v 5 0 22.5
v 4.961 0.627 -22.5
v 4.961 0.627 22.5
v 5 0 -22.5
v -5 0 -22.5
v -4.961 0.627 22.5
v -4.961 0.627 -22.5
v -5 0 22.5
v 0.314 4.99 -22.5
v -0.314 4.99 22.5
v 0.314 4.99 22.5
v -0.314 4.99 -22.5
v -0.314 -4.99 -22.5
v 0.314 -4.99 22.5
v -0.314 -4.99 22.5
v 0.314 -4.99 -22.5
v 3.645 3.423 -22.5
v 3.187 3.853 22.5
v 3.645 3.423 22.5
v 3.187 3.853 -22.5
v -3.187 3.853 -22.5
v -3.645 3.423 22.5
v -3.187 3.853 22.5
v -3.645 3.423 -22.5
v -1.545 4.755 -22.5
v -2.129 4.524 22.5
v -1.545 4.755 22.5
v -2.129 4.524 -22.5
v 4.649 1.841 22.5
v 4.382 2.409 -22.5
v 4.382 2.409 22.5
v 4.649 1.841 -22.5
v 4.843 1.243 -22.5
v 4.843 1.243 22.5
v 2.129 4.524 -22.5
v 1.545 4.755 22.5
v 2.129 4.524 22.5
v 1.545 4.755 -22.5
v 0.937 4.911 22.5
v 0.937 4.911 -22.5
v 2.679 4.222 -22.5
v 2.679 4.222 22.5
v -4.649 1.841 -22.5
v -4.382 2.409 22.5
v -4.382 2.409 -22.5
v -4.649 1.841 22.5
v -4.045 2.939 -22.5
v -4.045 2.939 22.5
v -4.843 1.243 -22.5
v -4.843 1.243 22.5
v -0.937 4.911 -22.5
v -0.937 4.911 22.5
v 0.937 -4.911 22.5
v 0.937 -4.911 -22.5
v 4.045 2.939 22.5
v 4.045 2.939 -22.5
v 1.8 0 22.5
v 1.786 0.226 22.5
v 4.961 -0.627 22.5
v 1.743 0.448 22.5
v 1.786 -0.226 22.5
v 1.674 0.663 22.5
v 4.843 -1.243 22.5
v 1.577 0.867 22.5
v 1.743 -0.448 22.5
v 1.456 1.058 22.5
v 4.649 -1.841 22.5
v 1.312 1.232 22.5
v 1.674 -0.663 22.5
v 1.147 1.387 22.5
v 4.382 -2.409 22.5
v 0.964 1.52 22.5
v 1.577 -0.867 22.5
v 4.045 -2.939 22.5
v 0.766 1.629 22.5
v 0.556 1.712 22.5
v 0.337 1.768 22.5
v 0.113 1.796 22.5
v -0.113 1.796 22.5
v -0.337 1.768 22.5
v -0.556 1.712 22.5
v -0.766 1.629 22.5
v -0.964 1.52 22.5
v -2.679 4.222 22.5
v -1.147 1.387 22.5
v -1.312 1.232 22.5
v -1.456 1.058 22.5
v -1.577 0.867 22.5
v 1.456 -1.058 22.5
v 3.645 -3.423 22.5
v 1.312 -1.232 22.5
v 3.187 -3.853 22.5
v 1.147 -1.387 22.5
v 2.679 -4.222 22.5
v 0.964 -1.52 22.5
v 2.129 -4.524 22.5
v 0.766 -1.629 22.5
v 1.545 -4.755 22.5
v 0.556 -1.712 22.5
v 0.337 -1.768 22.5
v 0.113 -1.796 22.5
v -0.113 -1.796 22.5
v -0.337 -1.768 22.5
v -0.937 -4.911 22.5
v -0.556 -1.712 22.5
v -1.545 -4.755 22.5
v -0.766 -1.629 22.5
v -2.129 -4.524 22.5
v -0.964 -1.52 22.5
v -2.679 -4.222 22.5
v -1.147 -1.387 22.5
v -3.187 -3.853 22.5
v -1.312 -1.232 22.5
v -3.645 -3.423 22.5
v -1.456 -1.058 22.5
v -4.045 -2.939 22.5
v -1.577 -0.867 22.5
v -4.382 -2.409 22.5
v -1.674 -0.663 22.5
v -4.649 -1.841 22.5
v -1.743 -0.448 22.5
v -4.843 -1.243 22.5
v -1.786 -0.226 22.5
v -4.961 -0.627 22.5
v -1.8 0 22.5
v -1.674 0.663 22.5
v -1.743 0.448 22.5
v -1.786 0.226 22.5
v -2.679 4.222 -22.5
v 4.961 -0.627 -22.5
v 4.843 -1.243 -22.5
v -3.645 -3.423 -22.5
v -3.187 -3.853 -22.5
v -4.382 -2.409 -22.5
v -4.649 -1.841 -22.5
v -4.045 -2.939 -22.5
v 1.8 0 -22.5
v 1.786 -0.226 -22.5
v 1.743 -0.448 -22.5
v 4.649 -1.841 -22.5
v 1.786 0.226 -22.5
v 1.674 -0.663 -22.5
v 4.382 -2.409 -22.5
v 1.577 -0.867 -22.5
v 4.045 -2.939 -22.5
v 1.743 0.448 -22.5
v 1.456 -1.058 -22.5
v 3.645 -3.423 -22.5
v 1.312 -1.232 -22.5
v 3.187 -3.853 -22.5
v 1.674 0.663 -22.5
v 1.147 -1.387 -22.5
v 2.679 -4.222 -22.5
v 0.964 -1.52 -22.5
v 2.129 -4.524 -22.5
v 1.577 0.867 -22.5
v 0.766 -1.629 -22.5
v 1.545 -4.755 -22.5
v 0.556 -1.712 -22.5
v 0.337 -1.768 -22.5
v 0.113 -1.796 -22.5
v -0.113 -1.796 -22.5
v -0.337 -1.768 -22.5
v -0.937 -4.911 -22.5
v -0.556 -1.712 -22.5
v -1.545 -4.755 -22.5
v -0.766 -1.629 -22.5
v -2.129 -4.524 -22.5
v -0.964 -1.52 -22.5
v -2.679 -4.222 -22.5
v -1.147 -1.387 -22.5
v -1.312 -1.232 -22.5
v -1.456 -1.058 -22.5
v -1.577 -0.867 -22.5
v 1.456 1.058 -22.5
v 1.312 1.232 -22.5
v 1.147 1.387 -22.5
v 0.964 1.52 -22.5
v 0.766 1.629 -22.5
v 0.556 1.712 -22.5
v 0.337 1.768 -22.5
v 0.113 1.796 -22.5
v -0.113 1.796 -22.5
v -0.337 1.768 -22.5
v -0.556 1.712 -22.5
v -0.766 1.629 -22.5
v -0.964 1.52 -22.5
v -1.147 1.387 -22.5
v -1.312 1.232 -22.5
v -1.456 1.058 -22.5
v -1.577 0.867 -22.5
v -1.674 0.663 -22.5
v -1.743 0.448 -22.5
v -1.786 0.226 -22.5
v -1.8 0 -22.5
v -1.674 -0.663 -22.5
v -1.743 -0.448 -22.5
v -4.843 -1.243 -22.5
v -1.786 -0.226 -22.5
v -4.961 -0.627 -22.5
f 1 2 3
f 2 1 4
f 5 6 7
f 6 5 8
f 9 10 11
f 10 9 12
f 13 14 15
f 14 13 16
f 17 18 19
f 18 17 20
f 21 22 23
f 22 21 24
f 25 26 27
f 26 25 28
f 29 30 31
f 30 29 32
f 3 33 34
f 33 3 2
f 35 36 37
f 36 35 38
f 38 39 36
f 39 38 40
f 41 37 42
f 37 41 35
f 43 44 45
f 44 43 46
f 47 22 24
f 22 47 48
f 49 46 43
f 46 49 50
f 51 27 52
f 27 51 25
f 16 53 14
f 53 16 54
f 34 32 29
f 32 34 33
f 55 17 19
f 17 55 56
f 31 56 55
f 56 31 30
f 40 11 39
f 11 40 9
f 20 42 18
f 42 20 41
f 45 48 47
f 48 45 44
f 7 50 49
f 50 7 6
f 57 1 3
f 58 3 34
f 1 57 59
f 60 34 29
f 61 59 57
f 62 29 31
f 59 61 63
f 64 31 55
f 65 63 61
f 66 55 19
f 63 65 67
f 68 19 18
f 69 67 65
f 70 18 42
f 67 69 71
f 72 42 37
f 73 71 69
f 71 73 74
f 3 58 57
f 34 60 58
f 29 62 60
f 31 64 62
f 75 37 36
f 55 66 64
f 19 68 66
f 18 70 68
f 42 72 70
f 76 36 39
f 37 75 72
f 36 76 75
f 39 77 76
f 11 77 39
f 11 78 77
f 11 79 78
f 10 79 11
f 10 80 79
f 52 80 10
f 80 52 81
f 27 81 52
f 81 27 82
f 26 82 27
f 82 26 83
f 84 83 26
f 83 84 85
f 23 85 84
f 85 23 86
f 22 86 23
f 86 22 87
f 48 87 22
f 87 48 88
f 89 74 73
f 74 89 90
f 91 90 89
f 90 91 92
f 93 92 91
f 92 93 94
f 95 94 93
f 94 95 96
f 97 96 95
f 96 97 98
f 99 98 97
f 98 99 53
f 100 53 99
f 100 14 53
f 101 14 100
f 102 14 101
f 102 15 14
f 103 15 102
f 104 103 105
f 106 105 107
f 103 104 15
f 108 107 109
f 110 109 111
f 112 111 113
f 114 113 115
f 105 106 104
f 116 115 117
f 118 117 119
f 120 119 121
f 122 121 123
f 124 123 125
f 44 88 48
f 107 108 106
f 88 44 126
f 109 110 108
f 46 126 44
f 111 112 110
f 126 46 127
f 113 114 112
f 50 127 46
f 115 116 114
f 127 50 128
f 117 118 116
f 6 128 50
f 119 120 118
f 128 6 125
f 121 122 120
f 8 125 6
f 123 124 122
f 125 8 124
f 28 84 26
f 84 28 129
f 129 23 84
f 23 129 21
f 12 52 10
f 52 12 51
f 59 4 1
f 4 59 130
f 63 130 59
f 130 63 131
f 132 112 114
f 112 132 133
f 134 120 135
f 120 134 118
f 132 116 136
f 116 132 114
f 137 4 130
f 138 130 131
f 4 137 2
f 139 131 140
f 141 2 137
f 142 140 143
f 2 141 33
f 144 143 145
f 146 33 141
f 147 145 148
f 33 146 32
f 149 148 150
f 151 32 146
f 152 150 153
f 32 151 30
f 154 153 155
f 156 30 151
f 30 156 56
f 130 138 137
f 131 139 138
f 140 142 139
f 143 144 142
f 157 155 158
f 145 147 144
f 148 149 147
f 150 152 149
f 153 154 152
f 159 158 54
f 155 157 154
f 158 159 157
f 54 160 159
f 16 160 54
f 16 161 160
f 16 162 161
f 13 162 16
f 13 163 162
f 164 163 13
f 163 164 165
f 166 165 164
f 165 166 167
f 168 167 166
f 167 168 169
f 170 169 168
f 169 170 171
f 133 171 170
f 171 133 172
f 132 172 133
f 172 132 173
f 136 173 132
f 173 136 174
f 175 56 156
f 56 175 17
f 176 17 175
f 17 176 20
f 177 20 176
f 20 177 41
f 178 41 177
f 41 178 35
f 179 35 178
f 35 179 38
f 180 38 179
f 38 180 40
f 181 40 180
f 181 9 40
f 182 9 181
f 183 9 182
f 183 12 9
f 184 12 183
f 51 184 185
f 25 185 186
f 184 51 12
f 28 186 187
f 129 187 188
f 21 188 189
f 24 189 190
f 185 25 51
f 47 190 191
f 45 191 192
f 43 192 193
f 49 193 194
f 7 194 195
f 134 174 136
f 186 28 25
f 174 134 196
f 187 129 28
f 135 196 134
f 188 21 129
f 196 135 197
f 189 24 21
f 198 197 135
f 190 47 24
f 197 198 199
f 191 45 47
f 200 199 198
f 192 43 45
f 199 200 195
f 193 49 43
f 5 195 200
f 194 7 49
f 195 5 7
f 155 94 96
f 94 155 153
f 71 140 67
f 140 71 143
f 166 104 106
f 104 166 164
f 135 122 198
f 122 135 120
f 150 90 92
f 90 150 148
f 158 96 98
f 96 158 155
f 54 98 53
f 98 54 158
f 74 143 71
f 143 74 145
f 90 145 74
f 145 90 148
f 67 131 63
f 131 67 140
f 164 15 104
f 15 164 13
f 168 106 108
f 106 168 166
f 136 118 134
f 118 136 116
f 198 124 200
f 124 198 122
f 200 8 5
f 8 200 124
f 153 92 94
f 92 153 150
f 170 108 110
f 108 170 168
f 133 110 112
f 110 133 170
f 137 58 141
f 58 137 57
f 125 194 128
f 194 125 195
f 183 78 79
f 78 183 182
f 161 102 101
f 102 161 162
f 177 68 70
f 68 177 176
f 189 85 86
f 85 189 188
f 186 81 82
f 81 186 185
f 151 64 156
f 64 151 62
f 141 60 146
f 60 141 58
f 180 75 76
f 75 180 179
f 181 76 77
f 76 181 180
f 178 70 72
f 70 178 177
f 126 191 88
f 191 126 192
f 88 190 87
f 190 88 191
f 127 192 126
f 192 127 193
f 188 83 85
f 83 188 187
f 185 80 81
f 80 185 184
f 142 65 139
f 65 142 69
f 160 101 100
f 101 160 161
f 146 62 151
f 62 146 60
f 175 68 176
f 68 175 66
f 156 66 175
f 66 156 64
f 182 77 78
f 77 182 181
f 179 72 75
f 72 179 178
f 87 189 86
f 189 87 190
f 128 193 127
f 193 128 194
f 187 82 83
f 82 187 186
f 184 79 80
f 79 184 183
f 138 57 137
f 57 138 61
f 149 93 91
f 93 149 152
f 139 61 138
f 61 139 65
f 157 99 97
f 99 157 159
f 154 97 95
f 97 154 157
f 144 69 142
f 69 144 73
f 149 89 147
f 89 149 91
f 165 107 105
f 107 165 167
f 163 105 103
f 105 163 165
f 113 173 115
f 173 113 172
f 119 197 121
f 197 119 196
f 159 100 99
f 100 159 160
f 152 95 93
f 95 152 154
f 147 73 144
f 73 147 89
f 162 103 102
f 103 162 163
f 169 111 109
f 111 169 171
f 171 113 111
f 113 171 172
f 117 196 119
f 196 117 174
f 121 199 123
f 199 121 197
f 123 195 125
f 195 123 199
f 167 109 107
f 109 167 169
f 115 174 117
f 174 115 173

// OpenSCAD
$fn = 50;


difference() {
	union() {
		translate(v = [0, 0, -22.5000000000]) {
			cylinder(h = 45, r = 5.0000000000);
		}
	}
	union() {
		translate(v = [0, 0, -100.0000000000]) {
			cylinder(h = 200, r = 1.8000000000);
		}
	}
}
